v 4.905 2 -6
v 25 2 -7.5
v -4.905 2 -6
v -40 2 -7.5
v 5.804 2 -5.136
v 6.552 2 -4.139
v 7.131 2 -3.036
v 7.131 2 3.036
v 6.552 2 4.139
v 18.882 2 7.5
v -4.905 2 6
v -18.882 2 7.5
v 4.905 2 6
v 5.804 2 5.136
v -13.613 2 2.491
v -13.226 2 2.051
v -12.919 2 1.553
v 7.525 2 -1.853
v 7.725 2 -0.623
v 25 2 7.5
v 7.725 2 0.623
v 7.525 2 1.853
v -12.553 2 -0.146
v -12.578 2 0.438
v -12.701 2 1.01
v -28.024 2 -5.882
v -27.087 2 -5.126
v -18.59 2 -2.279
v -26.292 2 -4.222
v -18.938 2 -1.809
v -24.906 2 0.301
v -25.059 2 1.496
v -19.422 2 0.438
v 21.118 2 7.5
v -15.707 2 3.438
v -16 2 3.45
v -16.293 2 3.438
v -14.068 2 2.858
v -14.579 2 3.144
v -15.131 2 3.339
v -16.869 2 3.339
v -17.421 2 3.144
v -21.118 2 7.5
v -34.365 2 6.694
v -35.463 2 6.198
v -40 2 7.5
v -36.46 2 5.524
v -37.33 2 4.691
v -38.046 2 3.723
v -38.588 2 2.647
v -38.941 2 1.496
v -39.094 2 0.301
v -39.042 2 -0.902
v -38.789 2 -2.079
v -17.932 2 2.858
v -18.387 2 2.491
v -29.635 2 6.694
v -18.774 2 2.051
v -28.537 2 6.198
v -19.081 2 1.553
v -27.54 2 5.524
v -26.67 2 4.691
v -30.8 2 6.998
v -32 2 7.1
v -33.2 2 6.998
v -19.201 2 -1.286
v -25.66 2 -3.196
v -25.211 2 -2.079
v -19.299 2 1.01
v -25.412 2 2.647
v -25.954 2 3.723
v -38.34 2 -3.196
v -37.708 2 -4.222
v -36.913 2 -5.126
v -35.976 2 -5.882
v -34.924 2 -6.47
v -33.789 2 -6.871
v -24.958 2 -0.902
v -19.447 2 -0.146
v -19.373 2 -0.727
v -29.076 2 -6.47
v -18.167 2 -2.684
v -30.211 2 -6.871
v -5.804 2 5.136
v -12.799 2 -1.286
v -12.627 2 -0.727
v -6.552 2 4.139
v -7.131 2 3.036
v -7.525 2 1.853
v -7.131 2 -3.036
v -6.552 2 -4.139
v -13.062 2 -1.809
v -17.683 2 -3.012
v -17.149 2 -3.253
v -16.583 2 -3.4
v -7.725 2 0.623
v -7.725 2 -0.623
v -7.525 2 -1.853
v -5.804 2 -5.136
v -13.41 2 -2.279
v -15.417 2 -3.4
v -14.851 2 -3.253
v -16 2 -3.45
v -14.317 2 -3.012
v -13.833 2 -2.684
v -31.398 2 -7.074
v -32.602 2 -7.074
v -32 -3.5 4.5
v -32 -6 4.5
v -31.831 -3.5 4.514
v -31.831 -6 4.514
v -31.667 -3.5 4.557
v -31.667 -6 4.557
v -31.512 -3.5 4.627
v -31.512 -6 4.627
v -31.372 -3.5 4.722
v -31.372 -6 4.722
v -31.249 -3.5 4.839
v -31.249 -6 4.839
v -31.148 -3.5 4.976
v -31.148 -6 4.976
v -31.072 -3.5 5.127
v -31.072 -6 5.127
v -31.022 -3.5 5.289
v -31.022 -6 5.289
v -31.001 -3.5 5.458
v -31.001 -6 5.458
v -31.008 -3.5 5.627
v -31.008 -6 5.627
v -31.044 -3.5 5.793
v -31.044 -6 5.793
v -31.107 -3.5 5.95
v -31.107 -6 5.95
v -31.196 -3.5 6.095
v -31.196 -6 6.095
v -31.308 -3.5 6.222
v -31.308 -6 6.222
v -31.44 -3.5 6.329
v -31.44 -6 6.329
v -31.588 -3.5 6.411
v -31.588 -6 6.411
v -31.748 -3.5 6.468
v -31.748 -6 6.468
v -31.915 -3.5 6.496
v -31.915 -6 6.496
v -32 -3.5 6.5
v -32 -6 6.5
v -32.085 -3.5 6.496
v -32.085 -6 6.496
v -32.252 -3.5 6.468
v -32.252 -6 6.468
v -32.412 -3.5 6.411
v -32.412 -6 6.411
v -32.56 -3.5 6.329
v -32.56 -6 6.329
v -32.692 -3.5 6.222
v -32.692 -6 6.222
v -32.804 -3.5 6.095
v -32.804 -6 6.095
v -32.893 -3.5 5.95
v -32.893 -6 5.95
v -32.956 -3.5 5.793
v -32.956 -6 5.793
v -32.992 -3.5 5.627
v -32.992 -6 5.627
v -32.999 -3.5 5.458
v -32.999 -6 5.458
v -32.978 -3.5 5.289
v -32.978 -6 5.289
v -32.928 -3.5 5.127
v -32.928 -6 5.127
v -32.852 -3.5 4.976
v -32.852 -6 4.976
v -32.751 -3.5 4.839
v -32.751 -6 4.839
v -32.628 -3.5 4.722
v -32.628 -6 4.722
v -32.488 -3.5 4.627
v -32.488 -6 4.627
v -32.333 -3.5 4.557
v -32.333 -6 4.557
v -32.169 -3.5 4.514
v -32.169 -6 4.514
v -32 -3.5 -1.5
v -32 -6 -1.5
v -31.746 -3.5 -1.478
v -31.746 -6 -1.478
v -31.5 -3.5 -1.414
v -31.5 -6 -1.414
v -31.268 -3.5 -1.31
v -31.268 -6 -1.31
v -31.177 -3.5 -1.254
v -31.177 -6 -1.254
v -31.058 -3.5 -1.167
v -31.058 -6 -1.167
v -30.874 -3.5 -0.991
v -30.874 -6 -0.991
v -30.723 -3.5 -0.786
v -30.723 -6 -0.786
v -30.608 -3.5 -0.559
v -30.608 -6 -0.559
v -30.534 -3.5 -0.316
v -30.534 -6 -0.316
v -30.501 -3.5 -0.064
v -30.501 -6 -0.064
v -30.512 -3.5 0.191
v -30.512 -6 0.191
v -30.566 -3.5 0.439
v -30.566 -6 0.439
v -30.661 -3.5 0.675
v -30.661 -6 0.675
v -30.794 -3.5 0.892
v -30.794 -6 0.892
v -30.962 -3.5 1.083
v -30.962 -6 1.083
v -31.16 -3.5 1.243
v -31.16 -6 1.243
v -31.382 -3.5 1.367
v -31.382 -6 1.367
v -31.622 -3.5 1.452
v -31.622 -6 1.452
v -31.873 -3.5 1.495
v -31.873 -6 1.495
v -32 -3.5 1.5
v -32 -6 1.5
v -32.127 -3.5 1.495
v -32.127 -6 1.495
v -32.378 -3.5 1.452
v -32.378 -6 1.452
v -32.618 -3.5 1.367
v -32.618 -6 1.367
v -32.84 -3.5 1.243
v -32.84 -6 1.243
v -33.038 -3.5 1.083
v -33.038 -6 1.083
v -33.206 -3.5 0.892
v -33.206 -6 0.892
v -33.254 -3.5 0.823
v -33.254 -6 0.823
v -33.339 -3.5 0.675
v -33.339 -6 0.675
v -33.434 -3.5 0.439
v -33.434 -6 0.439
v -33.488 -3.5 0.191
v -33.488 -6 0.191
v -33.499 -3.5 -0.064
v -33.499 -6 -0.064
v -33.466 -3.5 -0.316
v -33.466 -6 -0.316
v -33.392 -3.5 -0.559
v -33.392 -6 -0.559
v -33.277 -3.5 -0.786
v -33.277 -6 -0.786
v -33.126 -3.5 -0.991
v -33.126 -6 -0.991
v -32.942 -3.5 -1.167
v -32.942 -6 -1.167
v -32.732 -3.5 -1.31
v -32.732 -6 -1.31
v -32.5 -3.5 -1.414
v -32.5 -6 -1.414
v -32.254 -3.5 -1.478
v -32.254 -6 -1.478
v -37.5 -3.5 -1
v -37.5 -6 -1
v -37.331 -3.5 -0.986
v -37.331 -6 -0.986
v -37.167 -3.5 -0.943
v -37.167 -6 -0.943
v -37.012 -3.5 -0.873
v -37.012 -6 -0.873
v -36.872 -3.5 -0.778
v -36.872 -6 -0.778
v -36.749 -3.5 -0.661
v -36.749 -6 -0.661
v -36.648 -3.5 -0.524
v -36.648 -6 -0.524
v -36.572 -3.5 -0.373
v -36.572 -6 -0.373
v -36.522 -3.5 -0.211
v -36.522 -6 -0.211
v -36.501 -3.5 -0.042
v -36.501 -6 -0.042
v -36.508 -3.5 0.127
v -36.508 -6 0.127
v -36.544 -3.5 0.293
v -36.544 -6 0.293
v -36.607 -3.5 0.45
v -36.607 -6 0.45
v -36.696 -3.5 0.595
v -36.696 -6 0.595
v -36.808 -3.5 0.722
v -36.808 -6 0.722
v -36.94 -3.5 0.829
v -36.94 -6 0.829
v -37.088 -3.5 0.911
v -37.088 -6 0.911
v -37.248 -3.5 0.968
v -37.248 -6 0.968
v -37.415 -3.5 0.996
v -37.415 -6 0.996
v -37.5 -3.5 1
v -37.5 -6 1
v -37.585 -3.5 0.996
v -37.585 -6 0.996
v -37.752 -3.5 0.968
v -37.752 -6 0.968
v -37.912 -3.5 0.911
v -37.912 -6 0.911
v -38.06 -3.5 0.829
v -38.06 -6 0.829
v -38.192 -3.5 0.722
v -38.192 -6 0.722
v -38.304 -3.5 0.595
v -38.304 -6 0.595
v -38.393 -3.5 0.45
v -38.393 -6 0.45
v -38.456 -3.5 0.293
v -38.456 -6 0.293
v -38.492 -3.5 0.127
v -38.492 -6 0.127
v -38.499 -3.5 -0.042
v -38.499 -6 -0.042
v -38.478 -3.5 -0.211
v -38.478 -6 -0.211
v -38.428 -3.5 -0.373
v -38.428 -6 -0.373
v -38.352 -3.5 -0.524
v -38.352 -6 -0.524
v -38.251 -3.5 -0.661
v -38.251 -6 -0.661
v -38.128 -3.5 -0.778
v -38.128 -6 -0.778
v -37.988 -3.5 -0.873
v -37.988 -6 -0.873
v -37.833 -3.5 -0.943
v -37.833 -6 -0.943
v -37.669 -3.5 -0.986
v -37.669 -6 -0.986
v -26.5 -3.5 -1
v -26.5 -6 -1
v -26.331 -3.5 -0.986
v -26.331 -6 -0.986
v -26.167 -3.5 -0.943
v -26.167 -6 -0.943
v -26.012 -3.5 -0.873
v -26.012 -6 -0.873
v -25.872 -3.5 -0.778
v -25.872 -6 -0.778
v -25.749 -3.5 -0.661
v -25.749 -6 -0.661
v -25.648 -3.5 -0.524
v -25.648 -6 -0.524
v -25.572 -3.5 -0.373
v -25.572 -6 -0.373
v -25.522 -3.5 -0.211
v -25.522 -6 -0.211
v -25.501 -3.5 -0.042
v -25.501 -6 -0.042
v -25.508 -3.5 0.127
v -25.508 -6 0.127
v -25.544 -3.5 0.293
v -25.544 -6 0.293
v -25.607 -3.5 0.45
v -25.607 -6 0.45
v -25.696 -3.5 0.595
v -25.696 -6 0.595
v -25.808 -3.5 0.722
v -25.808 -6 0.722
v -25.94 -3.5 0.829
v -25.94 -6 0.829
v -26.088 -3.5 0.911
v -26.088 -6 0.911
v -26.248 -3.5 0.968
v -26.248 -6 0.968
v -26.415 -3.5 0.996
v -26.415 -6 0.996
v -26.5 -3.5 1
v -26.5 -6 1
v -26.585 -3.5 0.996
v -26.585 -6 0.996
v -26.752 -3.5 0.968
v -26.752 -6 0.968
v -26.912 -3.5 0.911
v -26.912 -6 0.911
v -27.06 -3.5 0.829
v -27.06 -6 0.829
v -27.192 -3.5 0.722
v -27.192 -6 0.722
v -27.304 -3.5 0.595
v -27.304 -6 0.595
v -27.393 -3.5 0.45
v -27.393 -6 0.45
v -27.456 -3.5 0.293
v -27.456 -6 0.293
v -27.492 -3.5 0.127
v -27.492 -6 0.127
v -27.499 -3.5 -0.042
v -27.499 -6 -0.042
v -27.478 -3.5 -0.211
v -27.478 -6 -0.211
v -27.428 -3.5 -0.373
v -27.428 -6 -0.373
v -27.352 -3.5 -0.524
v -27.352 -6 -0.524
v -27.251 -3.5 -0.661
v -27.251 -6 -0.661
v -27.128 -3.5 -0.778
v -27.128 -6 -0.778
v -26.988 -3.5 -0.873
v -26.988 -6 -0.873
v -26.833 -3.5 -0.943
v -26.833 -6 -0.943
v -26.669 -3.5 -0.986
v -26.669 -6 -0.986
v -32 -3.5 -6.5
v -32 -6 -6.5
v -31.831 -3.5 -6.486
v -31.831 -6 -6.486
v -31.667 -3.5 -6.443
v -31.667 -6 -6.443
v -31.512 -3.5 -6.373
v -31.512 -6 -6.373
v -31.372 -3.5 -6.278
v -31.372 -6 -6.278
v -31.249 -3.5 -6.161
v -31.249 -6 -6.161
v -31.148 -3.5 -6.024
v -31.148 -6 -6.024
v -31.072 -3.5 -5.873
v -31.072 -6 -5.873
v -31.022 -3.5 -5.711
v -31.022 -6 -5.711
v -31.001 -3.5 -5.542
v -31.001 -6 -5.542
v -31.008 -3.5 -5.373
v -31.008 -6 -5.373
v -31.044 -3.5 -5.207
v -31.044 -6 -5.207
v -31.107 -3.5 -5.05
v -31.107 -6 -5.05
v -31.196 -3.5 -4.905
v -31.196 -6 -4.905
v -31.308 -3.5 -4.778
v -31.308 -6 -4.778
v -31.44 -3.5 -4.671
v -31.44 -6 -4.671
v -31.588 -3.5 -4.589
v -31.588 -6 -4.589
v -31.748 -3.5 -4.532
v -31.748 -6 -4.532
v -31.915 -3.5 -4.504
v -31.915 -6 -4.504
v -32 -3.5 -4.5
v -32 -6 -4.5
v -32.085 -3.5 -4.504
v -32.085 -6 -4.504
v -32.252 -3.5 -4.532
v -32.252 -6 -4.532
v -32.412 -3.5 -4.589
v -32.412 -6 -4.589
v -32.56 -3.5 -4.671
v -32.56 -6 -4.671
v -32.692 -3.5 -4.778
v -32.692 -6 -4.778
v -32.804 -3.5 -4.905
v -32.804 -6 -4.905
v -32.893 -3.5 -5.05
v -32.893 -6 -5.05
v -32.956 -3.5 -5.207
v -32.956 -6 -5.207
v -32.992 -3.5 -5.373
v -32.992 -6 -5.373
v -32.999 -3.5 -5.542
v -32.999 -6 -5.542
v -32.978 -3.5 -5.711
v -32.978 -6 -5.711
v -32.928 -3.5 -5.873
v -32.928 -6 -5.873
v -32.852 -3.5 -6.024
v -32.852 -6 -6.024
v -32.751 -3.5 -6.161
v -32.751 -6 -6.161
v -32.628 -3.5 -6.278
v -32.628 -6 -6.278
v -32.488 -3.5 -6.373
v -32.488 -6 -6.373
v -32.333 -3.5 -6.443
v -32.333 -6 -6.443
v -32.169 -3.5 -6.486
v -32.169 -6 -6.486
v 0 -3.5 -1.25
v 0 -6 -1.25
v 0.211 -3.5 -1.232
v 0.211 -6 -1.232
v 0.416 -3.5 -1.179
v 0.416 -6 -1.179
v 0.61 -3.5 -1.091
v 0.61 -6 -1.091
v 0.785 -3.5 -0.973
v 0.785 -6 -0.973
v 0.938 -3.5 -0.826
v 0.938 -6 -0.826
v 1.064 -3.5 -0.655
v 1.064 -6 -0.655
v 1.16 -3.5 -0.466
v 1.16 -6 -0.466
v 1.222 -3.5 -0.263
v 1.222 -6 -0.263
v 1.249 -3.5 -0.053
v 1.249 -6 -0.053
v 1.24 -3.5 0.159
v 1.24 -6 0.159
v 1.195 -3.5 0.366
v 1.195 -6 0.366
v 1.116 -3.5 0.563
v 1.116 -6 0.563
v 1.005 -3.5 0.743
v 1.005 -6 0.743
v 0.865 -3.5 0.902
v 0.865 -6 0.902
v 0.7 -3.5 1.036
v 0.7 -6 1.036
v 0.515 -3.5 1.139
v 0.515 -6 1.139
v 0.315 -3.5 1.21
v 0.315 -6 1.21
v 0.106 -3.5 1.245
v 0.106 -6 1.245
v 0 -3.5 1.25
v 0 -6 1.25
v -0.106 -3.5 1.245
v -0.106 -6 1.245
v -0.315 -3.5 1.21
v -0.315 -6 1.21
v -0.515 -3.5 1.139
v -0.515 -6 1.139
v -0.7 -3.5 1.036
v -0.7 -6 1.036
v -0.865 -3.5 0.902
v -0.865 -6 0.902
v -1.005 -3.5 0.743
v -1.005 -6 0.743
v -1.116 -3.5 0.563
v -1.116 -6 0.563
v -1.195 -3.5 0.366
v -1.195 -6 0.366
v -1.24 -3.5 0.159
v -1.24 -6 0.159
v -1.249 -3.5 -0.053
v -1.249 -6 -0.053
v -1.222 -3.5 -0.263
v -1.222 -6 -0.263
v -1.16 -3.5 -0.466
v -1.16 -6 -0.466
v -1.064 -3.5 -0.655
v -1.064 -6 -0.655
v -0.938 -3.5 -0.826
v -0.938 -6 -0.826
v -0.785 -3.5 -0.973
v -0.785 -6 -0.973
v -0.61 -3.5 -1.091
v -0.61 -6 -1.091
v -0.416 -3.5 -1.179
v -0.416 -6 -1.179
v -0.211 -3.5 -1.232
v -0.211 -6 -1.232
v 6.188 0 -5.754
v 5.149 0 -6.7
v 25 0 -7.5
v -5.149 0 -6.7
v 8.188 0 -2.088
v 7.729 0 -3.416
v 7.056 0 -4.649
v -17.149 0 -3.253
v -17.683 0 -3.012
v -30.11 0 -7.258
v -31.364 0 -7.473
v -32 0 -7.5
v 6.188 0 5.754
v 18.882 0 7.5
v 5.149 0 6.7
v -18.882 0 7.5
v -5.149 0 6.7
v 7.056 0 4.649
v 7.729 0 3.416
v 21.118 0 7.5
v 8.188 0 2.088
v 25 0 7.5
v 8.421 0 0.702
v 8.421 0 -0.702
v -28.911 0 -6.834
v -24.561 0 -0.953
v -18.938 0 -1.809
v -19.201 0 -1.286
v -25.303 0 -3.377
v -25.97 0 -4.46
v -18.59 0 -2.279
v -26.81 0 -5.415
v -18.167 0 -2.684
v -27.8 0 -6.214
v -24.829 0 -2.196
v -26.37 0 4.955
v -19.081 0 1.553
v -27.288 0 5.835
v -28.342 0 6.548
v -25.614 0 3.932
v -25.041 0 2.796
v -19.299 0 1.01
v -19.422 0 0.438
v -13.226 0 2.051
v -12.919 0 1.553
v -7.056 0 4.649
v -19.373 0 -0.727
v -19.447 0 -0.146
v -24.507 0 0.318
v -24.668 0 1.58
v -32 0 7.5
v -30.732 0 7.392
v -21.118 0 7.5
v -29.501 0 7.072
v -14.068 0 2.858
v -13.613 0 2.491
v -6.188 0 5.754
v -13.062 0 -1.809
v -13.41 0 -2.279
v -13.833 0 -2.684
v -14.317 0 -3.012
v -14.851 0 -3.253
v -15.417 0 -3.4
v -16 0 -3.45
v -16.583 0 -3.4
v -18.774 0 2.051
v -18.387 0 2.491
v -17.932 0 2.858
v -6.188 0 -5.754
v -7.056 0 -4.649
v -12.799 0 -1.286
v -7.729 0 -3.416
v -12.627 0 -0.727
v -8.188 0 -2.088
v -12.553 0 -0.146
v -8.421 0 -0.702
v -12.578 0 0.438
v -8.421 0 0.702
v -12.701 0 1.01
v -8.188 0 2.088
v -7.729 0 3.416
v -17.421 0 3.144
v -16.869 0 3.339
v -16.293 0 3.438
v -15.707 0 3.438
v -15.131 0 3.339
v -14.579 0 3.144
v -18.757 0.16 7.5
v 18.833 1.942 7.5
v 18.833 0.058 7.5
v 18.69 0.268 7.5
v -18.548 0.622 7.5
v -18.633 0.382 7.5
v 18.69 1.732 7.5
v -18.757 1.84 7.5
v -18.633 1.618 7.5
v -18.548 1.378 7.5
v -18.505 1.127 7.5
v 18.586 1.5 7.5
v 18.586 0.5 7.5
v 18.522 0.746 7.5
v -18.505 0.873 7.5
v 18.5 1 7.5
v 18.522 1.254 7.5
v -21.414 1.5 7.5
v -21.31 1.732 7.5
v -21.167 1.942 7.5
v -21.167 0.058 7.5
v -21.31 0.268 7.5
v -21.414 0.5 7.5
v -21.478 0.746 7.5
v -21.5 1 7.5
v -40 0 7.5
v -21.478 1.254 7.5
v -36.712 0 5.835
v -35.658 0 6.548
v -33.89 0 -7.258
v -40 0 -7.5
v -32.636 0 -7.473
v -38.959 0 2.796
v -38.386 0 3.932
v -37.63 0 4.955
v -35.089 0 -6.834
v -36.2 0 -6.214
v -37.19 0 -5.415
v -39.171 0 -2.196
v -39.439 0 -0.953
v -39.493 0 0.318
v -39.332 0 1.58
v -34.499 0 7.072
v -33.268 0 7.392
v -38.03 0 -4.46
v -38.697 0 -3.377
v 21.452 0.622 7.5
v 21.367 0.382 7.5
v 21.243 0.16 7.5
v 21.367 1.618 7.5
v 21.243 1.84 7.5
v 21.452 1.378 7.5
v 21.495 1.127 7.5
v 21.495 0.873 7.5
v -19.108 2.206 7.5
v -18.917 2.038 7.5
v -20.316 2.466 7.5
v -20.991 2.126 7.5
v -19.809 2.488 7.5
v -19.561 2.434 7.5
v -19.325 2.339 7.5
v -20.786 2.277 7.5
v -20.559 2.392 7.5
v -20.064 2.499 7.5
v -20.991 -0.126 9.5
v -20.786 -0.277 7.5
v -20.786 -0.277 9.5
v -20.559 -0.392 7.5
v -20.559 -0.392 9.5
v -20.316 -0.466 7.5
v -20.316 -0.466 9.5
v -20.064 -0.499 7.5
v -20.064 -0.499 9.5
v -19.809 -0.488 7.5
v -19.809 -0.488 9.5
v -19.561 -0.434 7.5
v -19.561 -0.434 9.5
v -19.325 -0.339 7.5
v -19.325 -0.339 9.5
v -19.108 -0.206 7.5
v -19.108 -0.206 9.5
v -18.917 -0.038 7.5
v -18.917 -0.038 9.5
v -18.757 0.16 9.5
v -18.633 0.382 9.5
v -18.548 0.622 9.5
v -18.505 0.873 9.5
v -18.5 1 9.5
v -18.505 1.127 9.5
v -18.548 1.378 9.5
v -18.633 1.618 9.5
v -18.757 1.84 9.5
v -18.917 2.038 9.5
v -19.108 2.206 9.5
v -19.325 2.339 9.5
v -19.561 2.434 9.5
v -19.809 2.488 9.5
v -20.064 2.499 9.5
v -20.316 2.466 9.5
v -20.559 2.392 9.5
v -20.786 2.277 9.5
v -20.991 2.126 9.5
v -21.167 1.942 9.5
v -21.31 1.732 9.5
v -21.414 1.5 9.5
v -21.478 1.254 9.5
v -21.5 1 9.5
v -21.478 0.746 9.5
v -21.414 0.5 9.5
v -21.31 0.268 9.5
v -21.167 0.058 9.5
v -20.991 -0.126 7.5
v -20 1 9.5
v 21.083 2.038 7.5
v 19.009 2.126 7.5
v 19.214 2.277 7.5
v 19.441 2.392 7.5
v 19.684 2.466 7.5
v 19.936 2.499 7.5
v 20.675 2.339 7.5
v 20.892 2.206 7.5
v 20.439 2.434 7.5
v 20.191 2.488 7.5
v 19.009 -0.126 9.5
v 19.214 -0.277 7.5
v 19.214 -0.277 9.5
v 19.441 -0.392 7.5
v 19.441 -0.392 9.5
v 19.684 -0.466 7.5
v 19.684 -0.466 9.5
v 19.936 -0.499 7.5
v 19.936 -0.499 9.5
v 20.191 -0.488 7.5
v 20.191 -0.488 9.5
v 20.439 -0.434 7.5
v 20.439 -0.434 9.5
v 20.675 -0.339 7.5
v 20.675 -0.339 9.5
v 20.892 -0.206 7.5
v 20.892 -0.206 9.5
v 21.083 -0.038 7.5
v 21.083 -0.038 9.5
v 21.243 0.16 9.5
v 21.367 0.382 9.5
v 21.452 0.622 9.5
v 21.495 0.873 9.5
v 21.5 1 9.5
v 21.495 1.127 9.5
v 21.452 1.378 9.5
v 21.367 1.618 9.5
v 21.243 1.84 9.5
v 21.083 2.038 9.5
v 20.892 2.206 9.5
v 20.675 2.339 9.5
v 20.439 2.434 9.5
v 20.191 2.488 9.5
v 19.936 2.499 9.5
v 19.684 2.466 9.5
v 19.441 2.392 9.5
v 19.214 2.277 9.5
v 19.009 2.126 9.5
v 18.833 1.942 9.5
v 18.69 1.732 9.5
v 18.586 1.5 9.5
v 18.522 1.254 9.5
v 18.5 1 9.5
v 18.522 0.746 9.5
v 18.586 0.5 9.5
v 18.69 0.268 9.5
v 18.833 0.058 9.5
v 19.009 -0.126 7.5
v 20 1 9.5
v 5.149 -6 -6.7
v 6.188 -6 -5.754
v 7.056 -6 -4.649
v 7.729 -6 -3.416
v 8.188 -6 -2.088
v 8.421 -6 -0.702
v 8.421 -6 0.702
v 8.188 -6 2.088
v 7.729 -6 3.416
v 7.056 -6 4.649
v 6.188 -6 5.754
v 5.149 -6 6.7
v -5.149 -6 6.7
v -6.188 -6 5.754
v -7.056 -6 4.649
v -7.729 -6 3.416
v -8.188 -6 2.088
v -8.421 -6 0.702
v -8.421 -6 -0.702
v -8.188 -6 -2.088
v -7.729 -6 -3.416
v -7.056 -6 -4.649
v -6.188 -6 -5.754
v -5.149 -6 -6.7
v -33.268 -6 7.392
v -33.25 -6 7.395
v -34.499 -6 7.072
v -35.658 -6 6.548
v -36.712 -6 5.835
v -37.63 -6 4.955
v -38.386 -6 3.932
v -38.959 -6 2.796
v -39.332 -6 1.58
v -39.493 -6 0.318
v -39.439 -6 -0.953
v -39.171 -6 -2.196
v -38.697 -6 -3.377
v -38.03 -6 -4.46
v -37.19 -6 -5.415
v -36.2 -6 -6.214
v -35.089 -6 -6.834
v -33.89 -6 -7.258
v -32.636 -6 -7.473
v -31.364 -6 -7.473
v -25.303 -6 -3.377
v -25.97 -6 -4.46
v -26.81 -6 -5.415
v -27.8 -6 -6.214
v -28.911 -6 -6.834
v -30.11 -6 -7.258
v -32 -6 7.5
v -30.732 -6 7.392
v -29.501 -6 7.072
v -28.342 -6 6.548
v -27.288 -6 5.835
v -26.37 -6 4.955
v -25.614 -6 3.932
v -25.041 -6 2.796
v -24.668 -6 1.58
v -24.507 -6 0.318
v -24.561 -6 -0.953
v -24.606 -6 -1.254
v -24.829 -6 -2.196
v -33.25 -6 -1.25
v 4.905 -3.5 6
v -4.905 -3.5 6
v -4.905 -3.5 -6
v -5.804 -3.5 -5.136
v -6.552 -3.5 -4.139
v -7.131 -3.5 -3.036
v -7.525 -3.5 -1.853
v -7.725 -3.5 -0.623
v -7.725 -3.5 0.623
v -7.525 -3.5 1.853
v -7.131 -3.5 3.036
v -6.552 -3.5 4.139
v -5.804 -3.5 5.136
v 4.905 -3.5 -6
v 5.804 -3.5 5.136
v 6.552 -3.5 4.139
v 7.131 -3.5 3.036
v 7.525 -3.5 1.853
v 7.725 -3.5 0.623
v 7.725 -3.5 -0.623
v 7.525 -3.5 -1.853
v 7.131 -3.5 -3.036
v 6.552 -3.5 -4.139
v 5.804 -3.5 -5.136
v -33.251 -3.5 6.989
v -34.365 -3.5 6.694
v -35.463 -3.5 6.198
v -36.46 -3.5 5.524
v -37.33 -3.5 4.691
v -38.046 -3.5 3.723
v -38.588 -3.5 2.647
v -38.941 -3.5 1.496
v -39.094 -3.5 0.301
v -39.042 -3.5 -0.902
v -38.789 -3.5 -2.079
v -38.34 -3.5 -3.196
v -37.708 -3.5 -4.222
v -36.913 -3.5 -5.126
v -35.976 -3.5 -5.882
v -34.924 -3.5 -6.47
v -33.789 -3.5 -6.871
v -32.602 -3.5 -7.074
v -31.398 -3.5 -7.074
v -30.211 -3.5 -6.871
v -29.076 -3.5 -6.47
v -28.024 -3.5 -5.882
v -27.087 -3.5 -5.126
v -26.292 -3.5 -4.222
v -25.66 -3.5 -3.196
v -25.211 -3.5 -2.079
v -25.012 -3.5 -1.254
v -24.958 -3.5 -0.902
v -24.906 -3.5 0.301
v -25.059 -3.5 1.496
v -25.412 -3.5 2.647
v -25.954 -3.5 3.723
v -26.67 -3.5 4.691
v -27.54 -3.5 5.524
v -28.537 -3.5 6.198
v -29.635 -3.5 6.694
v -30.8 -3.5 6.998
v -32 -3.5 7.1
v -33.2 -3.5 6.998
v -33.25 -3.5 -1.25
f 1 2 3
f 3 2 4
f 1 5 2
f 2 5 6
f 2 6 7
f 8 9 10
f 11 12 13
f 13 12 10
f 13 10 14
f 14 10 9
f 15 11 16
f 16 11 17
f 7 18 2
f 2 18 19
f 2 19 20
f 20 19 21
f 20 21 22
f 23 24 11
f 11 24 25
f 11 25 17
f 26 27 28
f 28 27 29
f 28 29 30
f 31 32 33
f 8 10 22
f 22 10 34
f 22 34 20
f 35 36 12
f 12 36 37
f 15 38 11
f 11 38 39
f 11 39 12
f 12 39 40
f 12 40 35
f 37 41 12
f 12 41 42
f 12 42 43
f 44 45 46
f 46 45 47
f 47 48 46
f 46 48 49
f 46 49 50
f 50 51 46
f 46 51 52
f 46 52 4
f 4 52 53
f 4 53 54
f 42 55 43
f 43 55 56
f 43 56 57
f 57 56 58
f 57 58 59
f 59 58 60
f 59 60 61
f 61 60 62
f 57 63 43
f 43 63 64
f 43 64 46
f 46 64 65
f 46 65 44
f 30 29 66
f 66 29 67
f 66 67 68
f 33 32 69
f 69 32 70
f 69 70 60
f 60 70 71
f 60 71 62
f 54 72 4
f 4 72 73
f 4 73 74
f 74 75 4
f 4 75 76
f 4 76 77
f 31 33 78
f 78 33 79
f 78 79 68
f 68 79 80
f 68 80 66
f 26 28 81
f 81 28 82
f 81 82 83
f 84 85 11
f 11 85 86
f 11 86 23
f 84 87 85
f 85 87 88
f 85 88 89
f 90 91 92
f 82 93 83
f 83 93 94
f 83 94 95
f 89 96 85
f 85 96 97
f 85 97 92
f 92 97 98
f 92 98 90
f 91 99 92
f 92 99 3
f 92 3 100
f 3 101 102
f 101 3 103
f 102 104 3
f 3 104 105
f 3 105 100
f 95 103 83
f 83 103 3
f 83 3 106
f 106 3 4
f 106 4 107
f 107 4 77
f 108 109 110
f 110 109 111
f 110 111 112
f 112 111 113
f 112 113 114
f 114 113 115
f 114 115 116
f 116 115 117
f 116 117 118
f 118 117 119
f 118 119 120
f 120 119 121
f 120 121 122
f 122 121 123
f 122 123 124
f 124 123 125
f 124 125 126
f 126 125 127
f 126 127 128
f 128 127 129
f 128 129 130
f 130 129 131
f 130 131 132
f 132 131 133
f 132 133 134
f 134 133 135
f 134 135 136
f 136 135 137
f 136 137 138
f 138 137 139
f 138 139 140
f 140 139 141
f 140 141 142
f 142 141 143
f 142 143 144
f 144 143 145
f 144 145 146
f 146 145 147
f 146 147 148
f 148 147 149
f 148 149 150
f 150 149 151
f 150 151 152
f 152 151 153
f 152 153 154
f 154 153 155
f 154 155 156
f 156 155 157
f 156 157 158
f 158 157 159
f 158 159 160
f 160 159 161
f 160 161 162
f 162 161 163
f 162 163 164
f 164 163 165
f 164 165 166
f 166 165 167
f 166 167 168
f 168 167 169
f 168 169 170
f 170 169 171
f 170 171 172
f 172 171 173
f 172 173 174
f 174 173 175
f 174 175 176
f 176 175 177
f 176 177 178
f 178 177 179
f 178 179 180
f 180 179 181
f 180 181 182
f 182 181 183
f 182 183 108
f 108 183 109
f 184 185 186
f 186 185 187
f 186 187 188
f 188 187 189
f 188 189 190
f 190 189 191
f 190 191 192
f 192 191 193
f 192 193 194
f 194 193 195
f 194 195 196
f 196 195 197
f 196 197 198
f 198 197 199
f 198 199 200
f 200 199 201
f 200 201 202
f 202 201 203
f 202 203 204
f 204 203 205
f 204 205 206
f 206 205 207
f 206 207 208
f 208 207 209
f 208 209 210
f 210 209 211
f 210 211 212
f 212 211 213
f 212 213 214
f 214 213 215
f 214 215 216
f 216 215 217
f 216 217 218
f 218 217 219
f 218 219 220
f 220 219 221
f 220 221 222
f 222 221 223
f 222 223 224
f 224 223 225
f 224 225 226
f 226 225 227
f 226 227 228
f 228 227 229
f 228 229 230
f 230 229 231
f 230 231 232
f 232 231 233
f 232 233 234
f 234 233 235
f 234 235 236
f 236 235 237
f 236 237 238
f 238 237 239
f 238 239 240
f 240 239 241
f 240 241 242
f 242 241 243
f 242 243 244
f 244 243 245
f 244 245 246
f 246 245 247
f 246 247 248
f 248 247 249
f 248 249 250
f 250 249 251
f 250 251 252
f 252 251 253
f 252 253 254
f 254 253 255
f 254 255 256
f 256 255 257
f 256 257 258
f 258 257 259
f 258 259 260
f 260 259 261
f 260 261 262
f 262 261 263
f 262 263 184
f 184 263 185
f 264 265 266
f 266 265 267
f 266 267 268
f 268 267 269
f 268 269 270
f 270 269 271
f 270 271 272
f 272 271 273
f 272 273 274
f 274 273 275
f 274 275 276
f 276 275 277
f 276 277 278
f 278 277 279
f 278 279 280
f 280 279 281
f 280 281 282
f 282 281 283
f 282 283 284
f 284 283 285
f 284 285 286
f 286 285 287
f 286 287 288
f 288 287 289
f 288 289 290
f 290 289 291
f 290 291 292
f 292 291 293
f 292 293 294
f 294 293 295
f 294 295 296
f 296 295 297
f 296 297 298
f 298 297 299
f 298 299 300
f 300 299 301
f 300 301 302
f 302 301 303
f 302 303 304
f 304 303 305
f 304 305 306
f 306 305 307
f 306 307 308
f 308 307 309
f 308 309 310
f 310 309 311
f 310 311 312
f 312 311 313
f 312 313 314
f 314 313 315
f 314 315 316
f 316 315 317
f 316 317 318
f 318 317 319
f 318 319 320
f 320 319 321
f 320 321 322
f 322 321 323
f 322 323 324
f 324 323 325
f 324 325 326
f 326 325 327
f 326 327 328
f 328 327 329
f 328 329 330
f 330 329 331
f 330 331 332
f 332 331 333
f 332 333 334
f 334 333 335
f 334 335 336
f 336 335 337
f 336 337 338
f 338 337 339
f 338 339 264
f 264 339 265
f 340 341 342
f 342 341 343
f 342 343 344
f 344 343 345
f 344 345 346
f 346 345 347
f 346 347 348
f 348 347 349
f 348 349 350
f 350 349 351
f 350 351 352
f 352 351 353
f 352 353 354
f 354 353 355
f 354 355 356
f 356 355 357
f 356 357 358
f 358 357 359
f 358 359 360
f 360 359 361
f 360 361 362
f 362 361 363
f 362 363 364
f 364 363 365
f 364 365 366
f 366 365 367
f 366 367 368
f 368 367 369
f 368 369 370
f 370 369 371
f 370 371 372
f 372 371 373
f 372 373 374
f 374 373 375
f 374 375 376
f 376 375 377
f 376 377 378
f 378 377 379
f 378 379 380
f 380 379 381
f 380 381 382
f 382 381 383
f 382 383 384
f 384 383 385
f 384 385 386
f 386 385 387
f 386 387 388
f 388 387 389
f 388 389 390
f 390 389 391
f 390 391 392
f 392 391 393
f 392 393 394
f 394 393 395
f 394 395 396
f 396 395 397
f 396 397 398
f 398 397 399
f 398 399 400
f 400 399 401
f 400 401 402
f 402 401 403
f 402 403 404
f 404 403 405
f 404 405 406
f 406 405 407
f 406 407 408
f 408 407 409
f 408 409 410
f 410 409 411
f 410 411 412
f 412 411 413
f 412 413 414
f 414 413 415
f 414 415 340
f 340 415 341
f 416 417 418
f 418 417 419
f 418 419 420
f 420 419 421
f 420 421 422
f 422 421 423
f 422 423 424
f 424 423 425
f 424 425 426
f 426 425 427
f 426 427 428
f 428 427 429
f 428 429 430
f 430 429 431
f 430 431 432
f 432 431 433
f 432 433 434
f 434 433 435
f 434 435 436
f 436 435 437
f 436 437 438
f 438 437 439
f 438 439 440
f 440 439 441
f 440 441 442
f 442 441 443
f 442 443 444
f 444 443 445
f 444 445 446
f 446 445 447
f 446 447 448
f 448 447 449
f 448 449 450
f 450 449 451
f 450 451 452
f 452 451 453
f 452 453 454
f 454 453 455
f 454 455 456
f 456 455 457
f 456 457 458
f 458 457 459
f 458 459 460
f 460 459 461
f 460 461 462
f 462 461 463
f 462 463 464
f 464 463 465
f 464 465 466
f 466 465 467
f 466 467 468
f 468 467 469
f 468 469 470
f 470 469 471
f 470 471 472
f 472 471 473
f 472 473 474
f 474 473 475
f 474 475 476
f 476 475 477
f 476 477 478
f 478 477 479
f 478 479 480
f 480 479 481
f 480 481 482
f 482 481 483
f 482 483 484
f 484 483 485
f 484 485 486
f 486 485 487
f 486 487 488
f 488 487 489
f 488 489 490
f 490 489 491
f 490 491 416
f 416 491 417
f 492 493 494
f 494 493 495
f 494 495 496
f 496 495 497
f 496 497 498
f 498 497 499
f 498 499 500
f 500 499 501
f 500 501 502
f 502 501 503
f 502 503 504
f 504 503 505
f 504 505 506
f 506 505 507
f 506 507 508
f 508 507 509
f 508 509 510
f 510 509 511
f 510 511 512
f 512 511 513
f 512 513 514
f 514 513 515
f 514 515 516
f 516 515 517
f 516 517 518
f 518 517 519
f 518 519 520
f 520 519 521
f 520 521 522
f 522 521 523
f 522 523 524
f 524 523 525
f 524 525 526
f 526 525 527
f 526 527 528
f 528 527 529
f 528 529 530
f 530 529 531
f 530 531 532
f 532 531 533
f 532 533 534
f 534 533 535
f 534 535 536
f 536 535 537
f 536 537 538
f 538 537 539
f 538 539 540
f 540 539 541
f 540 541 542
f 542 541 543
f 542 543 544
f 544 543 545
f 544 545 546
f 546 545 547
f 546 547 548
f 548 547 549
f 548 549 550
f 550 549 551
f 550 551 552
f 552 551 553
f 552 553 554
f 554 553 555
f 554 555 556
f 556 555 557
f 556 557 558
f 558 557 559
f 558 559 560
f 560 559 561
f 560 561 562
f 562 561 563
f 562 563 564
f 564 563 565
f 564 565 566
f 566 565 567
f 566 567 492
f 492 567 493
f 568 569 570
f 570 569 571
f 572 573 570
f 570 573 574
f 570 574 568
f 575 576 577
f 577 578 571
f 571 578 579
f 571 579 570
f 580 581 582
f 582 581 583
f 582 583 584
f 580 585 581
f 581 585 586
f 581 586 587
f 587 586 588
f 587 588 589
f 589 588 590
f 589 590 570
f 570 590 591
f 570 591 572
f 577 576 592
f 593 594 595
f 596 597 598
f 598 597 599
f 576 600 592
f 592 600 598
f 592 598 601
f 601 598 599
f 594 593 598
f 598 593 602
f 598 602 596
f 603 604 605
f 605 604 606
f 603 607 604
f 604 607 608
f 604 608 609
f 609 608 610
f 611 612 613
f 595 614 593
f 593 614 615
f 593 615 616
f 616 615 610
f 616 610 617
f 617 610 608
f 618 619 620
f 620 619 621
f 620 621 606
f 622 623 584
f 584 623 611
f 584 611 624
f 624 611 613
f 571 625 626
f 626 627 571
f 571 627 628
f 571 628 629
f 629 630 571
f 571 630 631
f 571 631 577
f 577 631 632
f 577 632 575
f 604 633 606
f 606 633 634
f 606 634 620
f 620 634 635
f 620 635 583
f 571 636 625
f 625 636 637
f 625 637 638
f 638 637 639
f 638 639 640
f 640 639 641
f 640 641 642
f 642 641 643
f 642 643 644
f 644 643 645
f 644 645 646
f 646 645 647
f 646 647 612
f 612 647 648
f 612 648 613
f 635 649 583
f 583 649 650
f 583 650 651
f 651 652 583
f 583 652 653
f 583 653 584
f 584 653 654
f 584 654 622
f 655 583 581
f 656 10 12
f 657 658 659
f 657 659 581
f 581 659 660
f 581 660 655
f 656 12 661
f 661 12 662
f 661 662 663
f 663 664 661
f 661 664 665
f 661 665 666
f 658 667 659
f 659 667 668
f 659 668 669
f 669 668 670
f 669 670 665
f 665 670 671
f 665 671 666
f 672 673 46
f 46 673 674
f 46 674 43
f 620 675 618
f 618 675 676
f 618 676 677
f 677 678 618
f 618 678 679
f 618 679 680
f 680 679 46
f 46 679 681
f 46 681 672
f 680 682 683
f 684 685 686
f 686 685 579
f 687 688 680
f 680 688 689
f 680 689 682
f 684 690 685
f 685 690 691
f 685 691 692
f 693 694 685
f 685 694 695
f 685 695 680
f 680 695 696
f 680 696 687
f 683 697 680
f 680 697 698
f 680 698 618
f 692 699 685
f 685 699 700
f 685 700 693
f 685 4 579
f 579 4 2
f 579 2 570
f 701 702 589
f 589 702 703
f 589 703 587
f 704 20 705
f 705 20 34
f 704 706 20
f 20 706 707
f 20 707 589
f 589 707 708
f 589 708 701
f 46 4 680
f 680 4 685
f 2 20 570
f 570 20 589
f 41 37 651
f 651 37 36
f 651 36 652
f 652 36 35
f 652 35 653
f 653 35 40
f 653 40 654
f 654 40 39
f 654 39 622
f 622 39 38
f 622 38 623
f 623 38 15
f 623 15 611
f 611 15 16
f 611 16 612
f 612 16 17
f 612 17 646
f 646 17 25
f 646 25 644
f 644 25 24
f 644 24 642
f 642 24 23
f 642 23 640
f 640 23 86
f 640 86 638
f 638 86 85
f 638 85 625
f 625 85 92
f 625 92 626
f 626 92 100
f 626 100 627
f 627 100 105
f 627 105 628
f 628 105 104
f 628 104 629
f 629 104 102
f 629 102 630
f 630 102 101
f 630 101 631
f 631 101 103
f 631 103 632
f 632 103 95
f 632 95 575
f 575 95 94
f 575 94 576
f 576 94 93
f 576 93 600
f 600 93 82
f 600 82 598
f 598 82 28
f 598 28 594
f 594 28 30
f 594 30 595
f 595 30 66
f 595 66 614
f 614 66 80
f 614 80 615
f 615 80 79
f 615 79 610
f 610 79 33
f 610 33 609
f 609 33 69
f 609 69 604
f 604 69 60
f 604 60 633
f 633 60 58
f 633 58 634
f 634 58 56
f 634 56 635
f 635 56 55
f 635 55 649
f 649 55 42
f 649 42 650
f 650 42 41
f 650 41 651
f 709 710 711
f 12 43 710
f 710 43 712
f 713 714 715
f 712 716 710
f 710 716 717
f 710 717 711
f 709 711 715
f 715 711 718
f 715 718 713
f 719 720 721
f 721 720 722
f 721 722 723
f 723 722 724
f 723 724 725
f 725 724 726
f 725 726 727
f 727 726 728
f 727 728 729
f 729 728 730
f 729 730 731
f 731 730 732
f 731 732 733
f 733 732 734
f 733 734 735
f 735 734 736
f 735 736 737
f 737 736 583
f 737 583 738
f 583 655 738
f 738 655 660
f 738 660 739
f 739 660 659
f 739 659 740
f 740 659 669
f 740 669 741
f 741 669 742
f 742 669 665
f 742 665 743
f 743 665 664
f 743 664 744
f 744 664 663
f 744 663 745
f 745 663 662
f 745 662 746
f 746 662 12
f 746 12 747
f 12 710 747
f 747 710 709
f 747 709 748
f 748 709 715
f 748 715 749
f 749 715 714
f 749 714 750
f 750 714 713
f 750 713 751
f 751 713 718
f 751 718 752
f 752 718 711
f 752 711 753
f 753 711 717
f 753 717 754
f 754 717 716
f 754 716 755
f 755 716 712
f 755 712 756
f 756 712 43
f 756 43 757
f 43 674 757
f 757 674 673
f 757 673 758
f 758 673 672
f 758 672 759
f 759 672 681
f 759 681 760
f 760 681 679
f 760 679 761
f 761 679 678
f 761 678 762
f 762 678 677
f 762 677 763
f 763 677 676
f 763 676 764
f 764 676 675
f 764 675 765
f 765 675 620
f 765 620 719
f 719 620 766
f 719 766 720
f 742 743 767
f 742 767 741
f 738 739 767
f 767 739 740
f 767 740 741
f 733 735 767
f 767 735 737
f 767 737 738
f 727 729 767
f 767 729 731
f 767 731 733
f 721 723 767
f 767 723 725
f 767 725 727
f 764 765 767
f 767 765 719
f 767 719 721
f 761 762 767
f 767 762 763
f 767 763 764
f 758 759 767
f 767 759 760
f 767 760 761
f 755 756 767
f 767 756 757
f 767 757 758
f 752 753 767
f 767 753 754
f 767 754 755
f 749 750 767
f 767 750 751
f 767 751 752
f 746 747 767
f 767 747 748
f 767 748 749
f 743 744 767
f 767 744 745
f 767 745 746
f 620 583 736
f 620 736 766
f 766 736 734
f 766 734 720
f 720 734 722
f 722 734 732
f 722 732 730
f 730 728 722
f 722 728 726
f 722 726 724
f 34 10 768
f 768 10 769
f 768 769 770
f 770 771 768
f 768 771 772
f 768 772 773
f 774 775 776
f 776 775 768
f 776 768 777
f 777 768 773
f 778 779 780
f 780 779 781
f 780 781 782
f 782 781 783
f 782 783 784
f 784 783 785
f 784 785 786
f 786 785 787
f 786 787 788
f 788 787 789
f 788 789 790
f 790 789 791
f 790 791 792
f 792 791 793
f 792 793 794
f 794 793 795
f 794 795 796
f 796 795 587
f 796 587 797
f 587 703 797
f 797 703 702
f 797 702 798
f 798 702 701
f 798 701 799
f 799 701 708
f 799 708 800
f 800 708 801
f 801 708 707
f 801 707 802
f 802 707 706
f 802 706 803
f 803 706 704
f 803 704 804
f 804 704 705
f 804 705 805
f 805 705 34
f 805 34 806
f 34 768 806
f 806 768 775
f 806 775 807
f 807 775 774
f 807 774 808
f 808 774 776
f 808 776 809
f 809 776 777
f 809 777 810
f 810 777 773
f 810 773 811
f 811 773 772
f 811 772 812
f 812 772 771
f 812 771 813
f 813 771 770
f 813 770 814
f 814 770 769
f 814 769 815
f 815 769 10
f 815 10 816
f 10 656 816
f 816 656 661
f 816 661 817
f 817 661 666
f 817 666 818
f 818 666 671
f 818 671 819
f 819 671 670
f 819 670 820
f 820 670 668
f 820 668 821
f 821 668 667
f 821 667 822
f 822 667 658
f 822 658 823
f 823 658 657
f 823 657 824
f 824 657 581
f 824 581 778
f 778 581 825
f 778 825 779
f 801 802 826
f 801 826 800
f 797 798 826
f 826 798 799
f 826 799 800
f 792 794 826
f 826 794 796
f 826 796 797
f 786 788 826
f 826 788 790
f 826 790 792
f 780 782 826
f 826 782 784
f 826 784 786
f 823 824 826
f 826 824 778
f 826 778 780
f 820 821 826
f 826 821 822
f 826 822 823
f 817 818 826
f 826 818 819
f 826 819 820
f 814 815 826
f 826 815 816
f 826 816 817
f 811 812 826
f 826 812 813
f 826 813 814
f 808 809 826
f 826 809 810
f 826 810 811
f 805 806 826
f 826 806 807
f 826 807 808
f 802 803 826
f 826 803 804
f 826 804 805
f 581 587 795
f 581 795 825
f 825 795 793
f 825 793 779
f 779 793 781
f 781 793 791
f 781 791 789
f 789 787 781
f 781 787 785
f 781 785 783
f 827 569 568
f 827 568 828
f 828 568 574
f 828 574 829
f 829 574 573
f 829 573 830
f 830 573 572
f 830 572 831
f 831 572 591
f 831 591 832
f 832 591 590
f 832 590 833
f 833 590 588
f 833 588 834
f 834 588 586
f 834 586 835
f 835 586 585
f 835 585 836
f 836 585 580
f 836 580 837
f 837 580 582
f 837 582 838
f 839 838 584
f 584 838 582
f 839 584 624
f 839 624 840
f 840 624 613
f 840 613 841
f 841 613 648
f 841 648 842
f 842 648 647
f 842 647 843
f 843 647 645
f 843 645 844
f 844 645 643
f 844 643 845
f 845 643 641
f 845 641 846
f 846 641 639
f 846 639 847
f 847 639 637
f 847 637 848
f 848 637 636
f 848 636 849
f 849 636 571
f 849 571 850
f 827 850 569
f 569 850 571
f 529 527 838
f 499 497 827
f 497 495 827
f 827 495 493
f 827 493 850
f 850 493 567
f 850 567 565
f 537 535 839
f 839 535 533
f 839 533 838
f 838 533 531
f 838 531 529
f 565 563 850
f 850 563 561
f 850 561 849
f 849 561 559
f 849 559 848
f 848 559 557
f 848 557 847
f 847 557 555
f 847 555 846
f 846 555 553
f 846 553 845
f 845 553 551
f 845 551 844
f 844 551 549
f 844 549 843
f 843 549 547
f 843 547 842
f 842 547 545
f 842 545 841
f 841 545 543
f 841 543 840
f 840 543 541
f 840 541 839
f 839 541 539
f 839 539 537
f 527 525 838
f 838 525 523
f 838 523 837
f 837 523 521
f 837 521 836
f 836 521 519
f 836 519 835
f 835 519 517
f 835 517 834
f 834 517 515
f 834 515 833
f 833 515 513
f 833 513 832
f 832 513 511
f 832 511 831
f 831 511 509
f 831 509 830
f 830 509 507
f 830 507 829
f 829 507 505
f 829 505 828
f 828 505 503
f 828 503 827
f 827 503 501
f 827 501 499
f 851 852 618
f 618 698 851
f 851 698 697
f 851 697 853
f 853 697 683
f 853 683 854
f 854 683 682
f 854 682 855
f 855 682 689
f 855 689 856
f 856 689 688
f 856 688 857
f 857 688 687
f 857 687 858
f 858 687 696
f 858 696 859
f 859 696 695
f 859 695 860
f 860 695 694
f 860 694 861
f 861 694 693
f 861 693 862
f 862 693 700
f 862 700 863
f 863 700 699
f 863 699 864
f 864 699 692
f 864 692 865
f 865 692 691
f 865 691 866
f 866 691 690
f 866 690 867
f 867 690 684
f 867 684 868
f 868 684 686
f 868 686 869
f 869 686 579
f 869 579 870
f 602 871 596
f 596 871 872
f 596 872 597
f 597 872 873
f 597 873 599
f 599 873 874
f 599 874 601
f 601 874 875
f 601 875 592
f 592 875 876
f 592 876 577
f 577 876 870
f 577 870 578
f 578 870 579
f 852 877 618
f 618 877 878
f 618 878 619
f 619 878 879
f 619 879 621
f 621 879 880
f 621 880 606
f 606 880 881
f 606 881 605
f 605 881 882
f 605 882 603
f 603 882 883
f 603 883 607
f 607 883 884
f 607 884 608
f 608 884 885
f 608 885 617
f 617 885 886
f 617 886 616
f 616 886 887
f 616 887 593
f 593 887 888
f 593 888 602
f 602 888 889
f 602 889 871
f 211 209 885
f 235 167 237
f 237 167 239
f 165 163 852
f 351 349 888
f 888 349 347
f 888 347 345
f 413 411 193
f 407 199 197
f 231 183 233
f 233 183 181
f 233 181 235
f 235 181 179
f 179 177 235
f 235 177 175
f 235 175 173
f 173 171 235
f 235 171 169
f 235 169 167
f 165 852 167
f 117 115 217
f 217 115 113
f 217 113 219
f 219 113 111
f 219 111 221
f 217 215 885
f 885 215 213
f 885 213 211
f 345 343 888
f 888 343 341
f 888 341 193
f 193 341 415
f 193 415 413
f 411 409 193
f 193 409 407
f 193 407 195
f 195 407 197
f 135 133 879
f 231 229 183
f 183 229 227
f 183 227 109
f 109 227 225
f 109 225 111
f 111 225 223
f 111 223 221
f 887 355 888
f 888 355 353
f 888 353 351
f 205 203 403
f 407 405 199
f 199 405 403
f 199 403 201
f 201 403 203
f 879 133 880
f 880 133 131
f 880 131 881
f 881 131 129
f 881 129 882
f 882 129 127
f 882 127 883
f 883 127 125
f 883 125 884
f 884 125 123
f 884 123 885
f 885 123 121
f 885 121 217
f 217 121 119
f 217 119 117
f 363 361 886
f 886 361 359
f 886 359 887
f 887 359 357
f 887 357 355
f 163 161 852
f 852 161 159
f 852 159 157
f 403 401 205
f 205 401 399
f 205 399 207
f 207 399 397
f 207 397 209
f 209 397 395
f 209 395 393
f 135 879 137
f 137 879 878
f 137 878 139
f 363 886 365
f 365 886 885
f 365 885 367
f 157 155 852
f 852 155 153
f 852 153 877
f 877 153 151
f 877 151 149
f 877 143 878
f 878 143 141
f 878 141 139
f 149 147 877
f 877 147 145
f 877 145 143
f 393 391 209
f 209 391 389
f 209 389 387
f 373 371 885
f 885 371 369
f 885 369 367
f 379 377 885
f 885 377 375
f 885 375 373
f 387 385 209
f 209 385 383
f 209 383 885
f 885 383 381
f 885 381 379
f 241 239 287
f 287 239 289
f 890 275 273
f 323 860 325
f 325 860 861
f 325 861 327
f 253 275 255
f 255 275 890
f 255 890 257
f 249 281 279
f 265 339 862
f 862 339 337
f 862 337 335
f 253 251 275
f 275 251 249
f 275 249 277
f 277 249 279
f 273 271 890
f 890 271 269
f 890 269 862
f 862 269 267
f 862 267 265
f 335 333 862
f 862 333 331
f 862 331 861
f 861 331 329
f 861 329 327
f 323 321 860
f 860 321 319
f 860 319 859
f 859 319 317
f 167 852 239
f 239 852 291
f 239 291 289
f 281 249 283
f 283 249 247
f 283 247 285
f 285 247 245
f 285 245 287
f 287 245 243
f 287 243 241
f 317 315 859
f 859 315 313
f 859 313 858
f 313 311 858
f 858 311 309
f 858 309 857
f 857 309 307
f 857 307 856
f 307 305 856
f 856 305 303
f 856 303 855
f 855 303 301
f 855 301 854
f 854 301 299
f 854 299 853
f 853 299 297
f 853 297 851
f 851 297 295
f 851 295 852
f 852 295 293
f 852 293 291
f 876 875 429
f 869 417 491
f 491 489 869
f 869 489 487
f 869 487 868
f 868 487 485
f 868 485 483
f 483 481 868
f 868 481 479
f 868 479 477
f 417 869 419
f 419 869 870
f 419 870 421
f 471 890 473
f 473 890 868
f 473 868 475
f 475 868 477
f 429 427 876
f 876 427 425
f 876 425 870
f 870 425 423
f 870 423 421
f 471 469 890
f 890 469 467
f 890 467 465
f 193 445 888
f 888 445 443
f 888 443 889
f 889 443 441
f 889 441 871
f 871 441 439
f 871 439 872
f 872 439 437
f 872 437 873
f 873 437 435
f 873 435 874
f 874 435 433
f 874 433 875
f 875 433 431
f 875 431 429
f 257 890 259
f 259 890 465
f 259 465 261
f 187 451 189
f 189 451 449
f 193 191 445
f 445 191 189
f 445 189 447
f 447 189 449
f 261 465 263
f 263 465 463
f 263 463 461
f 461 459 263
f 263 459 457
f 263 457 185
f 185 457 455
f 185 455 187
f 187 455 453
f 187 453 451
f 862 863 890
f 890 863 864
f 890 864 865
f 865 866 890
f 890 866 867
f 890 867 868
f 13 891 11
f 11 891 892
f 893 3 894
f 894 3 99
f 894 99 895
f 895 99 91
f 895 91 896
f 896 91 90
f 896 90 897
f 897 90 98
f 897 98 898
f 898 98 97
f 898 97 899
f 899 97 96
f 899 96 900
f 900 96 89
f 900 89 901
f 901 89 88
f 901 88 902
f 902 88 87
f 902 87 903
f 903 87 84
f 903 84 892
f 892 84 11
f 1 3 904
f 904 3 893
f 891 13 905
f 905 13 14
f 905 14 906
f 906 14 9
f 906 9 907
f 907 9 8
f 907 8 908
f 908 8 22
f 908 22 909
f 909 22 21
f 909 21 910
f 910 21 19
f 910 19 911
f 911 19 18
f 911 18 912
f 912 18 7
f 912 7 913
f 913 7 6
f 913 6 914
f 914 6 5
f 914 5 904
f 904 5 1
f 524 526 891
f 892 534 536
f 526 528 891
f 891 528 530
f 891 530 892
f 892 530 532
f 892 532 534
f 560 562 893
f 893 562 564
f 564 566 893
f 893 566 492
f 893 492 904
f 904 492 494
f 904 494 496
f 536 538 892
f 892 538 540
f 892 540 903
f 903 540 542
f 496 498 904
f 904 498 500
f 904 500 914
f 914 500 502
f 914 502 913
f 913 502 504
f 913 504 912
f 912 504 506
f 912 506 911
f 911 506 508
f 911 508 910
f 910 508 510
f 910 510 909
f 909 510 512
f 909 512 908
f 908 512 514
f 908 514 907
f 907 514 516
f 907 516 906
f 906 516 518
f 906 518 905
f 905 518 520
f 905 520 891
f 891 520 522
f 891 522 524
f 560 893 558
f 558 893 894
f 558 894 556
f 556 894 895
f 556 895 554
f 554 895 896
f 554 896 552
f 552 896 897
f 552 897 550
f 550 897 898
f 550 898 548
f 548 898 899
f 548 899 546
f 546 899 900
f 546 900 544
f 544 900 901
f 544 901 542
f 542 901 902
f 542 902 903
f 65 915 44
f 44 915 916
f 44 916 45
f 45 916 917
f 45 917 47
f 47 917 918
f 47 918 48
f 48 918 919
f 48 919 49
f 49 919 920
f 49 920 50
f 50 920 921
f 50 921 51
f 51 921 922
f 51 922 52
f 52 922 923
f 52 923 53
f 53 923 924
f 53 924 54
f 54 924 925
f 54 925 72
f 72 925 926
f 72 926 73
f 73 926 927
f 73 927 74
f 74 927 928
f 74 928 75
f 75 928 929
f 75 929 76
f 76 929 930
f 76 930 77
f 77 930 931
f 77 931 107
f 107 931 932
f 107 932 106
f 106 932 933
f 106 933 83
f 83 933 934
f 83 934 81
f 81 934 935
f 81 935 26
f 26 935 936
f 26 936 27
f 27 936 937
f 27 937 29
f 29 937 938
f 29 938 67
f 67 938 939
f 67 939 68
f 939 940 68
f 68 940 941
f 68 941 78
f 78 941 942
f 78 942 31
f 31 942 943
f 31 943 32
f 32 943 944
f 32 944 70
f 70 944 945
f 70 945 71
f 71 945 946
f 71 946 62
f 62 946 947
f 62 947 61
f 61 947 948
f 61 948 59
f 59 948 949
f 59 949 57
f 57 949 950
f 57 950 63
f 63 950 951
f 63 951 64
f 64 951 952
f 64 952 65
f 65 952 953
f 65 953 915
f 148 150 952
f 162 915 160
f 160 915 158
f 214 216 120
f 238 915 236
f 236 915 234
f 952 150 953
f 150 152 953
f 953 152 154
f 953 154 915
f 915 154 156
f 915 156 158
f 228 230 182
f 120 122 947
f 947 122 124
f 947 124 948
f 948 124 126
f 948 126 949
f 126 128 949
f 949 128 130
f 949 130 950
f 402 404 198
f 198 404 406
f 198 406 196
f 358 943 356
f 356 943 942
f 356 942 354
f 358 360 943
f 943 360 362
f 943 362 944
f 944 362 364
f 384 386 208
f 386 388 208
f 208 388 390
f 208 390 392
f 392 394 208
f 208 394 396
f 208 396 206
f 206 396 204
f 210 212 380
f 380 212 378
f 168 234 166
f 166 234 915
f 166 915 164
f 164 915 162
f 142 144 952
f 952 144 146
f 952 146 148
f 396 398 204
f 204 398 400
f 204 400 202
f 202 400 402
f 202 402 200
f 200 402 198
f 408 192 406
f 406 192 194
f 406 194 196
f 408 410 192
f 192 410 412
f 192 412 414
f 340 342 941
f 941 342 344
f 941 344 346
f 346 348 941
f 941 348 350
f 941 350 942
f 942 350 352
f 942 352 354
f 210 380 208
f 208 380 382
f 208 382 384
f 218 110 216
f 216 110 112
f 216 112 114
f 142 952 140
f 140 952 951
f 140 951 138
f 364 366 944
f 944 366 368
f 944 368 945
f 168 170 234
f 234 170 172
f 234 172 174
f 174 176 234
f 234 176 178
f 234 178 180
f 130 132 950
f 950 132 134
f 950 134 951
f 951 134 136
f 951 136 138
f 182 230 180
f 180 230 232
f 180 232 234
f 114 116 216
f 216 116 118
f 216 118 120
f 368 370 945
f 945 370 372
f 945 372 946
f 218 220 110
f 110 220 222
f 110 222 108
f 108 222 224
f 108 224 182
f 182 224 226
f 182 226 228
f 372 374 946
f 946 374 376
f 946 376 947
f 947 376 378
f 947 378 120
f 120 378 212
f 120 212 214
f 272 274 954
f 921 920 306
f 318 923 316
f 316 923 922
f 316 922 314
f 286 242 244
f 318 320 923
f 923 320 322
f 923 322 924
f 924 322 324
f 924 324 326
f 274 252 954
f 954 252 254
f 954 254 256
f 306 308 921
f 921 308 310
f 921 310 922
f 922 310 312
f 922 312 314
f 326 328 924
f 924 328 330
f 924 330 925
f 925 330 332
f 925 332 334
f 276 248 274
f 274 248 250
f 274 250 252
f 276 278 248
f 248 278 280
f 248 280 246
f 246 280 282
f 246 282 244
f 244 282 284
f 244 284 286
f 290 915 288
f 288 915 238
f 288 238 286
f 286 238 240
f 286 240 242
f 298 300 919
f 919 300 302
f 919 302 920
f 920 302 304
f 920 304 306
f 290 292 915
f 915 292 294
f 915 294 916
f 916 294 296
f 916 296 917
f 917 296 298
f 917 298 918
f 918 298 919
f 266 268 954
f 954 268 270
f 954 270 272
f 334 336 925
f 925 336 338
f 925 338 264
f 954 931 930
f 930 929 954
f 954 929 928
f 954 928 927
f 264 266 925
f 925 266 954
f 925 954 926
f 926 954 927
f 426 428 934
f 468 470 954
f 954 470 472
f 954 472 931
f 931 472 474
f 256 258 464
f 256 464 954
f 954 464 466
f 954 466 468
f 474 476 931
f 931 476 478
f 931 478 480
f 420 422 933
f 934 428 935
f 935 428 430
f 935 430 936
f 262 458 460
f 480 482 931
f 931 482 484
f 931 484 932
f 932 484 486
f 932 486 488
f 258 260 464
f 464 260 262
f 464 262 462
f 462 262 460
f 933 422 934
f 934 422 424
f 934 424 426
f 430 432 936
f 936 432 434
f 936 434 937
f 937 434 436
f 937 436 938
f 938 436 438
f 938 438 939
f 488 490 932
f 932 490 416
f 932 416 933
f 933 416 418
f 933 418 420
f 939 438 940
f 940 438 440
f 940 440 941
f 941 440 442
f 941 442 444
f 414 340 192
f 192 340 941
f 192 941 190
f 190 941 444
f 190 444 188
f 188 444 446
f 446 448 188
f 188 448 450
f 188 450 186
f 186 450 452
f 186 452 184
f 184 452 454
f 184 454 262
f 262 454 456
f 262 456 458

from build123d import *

# Parameters (mm, degrees)
SKETCH_1_W          = 65
SKETCH_1_H          = 15
EXTRUDE_1_DEPTH     = 2
SKETCH_2_R          = 1.25
SKETCH_2_R_2        = 3.45
SKETCH_2_R_3        = 1.5
SKETCH_2_R_4        = 1
CUT_EXTRUDE_1_DEPTH = 2
SKETCH_4_R          = 1.5
EXTRUDE_2_DEPTH     = 2
SKETCH_5_R          = 7.5
SKETCH_5_R_2        = 7.1
EXTRUDE_3_DEPTH     = 8
EXTRUDE_START       = -8
SKETCH_5_5_R        = 1.25
SKETCH_5_5_R_2      = 7.1
SKETCH_5_5_R_3      = 1
SKETCH_5_5_R_4      = 1.5
EXTRUDE_4_DEPTH     = 6
CUT_EXTRUDE_START   = -5.5
SKETCH_5_6_R        = 1.25
SKETCH_5_6_R_2      = 7.1
CUT_EXTRUDE_3_DEPTH = 5.5


with BuildPart() as part:
    # 草图1 → 凸台-拉伸1 (new body)
    with BuildSketch(Plane(origin=(0, 0, 0), x_dir=(1, 0, 0), z_dir=(0, 1, 0))):
        with Locations((-7.5, 0)):
            Rectangle(SKETCH_1_W, SKETCH_1_H)
    extrude(amount=EXTRUDE_1_DEPTH)

    # 草图2 → 切除-拉伸1 (cut)
    with BuildSketch(Plane(origin=(0, 0, 0), x_dir=(1, 0, 0), z_dir=(0, 1, 0))):
        with Locations(Location((0, 0, 0), (0, 0, 270))):
            Circle(SKETCH_2_R)
        with Locations(Location((-16, 0, 0), (0, 0, 90))):
            Circle(SKETCH_2_R_2)
        with Locations(Location((-32, 0, 0), (0, 0, 270))):
            Circle(SKETCH_2_R_3)
        with Locations(Location((-26.5, 0, 0), (0, 0, 270))):
            Circle(SKETCH_2_R_4)
        with Locations(Location((-32, -5.5, 0), (0, 0, 270))):
            Circle(SKETCH_2_R_4)
        with Locations(Location((-37.5, 0, 0), (0, 0, 270))):
            Circle(SKETCH_2_R_4)
        with Locations(Location((-32, 5.5, 0), (0, 0, 270))):
            Circle(SKETCH_2_R_4)
    extrude(amount=CUT_EXTRUDE_1_DEPTH, mode=Mode.SUBTRACT)

    # 草图4 → 凸台-拉伸2 (add)
    with BuildSketch(Plane.XY.offset(7.5)):
        with Locations(Location((20, 1, 0), (0, 0, 221.810314896))):
            Circle(SKETCH_4_R)
        with Locations(Location((-20, 1, 0), (0, 0, 221.810314896))):
            Circle(SKETCH_4_R)
    extrude(amount=EXTRUDE_2_DEPTH)

    # 草图5 → 凸台-拉伸3 (add)
    # profile 1 of 2: a face of its own
    with BuildSketch(Plane(origin=(0, 2, 0), x_dir=(1, 0, 0), z_dir=(0, 1, 0))):
        with Locations(Location((-32, 0, 0), (0, 0, 270))):
            Circle(SKETCH_5_R)
        with Locations(Location((-32, 0, 0), (0, 0, 270))):
            Circle(SKETCH_5_R_2, mode=Mode.SUBTRACT)
    # profile 2 of 2: a face of its own
    with BuildSketch(Plane(origin=(0, 2, 0), x_dir=(1, 0, 0), z_dir=(0, 1, 0))):
        with BuildLine():
            Line((5.149029035, -6.7), (-5.149029035, -6.7))
            ThreePointArc((-5.149029035, -6.7), (-8.45, 0), (-5.149029035, 6.7))
            Line((-5.149029035, 6.7), (5.149029035, 6.7))
            ThreePointArc((5.149029035, 6.7), (8.45, 0), (5.149029035, -6.7))
        make_face()
        with BuildLine():
            Line((4.905354218, -6), (-4.905354218, -6))
            ThreePointArc((-4.905354218, -6), (-7.75, 0), (-4.905354218, 6))
            Line((-4.905354218, 6), (4.905354218, 6))
            ThreePointArc((4.905354218, 6), (7.75, 0), (4.905354218, -6))
        make_face(mode=Mode.SUBTRACT)
    extrude(amount=-EXTRUDE_3_DEPTH)

    # 草图5<5> → 凸台-拉伸4 (add)
    # profile 1 of 2: a face of its own
    with BuildSketch(Plane(origin=(0, 2, 0), x_dir=(1, 0, 0), z_dir=(0, 1, 0)).offset(EXTRUDE_START)):
        with BuildLine():
            Line((4.905354218, -6), (-4.905354218, -6))
            ThreePointArc((-4.905354218, -6), (-7.75, 0), (-4.905354218, 6))
            Line((-4.905354218, 6), (4.905354218, 6))
            ThreePointArc((4.905354218, 6), (7.75, 0), (4.905354218, -6))
        make_face()
        with Locations(Location((0, 0, 0), (0, 0, 270))):
            Circle(SKETCH_5_5_R, mode=Mode.SUBTRACT)
    # profile 2 of 2: a face of its own
    with BuildSketch(Plane(origin=(0, 2, 0), x_dir=(1, 0, 0), z_dir=(0, 1, 0)).offset(EXTRUDE_START)):
        with Locations((-32, 0)):
            Circle(SKETCH_5_5_R_2)
        with Locations(Location((-32, 5.5, 0), (0, 0, 270))):
            Circle(SKETCH_5_5_R_3, mode=Mode.SUBTRACT)
        with Locations(Location((-37.5, 0, 0), (0, 0, 270))):
            Circle(SKETCH_5_5_R_3, mode=Mode.SUBTRACT)
        with Locations(Location((-32, 0, 0), (0, 0, 270))):
            Circle(SKETCH_5_5_R_4, mode=Mode.SUBTRACT)
        with Locations(Location((-26.5, 0, 0), (0, 0, 270))):
            Circle(SKETCH_5_5_R_3, mode=Mode.SUBTRACT)
        with Locations(Location((-32, -5.5, 0), (0, 0, 270))):
            Circle(SKETCH_5_5_R_3, mode=Mode.SUBTRACT)
    extrude(amount=EXTRUDE_4_DEPTH)

    # 草图5<6> → 切除-拉伸3 (cut)
    # profile 1 of 2: a face of its own
    with BuildSketch(Plane(origin=(0, 2, 0), x_dir=(1, 0, 0), z_dir=(0, 1, 0)).offset(CUT_EXTRUDE_START)):
        with BuildLine():
            Line((4.905354218, -6), (-4.905354218, -6))
            ThreePointArc((-4.905354218, -6), (-7.75, 0), (-4.905354218, 6))
            Line((-4.905354218, 6), (4.905354218, 6))
            ThreePointArc((4.905354218, 6), (7.75, 0), (4.905354218, -6))
        make_face()
        with Locations(Location((0, 0, 0), (0, 0, 270))):
            Circle(SKETCH_5_6_R, mode=Mode.SUBTRACT)
    # profile 2 of 2: a face of its own
    with BuildSketch(Plane(origin=(0, 2, 0), x_dir=(1, 0, 0), z_dir=(0, 1, 0)).offset(CUT_EXTRUDE_START)):
        with Locations(Location((-32, 0, 0), (0, 0, 270))):
            Circle(SKETCH_5_6_R_2)
    extrude(amount=CUT_EXTRUDE_3_DEPTH, mode=Mode.SUBTRACT)


solid = part.part
